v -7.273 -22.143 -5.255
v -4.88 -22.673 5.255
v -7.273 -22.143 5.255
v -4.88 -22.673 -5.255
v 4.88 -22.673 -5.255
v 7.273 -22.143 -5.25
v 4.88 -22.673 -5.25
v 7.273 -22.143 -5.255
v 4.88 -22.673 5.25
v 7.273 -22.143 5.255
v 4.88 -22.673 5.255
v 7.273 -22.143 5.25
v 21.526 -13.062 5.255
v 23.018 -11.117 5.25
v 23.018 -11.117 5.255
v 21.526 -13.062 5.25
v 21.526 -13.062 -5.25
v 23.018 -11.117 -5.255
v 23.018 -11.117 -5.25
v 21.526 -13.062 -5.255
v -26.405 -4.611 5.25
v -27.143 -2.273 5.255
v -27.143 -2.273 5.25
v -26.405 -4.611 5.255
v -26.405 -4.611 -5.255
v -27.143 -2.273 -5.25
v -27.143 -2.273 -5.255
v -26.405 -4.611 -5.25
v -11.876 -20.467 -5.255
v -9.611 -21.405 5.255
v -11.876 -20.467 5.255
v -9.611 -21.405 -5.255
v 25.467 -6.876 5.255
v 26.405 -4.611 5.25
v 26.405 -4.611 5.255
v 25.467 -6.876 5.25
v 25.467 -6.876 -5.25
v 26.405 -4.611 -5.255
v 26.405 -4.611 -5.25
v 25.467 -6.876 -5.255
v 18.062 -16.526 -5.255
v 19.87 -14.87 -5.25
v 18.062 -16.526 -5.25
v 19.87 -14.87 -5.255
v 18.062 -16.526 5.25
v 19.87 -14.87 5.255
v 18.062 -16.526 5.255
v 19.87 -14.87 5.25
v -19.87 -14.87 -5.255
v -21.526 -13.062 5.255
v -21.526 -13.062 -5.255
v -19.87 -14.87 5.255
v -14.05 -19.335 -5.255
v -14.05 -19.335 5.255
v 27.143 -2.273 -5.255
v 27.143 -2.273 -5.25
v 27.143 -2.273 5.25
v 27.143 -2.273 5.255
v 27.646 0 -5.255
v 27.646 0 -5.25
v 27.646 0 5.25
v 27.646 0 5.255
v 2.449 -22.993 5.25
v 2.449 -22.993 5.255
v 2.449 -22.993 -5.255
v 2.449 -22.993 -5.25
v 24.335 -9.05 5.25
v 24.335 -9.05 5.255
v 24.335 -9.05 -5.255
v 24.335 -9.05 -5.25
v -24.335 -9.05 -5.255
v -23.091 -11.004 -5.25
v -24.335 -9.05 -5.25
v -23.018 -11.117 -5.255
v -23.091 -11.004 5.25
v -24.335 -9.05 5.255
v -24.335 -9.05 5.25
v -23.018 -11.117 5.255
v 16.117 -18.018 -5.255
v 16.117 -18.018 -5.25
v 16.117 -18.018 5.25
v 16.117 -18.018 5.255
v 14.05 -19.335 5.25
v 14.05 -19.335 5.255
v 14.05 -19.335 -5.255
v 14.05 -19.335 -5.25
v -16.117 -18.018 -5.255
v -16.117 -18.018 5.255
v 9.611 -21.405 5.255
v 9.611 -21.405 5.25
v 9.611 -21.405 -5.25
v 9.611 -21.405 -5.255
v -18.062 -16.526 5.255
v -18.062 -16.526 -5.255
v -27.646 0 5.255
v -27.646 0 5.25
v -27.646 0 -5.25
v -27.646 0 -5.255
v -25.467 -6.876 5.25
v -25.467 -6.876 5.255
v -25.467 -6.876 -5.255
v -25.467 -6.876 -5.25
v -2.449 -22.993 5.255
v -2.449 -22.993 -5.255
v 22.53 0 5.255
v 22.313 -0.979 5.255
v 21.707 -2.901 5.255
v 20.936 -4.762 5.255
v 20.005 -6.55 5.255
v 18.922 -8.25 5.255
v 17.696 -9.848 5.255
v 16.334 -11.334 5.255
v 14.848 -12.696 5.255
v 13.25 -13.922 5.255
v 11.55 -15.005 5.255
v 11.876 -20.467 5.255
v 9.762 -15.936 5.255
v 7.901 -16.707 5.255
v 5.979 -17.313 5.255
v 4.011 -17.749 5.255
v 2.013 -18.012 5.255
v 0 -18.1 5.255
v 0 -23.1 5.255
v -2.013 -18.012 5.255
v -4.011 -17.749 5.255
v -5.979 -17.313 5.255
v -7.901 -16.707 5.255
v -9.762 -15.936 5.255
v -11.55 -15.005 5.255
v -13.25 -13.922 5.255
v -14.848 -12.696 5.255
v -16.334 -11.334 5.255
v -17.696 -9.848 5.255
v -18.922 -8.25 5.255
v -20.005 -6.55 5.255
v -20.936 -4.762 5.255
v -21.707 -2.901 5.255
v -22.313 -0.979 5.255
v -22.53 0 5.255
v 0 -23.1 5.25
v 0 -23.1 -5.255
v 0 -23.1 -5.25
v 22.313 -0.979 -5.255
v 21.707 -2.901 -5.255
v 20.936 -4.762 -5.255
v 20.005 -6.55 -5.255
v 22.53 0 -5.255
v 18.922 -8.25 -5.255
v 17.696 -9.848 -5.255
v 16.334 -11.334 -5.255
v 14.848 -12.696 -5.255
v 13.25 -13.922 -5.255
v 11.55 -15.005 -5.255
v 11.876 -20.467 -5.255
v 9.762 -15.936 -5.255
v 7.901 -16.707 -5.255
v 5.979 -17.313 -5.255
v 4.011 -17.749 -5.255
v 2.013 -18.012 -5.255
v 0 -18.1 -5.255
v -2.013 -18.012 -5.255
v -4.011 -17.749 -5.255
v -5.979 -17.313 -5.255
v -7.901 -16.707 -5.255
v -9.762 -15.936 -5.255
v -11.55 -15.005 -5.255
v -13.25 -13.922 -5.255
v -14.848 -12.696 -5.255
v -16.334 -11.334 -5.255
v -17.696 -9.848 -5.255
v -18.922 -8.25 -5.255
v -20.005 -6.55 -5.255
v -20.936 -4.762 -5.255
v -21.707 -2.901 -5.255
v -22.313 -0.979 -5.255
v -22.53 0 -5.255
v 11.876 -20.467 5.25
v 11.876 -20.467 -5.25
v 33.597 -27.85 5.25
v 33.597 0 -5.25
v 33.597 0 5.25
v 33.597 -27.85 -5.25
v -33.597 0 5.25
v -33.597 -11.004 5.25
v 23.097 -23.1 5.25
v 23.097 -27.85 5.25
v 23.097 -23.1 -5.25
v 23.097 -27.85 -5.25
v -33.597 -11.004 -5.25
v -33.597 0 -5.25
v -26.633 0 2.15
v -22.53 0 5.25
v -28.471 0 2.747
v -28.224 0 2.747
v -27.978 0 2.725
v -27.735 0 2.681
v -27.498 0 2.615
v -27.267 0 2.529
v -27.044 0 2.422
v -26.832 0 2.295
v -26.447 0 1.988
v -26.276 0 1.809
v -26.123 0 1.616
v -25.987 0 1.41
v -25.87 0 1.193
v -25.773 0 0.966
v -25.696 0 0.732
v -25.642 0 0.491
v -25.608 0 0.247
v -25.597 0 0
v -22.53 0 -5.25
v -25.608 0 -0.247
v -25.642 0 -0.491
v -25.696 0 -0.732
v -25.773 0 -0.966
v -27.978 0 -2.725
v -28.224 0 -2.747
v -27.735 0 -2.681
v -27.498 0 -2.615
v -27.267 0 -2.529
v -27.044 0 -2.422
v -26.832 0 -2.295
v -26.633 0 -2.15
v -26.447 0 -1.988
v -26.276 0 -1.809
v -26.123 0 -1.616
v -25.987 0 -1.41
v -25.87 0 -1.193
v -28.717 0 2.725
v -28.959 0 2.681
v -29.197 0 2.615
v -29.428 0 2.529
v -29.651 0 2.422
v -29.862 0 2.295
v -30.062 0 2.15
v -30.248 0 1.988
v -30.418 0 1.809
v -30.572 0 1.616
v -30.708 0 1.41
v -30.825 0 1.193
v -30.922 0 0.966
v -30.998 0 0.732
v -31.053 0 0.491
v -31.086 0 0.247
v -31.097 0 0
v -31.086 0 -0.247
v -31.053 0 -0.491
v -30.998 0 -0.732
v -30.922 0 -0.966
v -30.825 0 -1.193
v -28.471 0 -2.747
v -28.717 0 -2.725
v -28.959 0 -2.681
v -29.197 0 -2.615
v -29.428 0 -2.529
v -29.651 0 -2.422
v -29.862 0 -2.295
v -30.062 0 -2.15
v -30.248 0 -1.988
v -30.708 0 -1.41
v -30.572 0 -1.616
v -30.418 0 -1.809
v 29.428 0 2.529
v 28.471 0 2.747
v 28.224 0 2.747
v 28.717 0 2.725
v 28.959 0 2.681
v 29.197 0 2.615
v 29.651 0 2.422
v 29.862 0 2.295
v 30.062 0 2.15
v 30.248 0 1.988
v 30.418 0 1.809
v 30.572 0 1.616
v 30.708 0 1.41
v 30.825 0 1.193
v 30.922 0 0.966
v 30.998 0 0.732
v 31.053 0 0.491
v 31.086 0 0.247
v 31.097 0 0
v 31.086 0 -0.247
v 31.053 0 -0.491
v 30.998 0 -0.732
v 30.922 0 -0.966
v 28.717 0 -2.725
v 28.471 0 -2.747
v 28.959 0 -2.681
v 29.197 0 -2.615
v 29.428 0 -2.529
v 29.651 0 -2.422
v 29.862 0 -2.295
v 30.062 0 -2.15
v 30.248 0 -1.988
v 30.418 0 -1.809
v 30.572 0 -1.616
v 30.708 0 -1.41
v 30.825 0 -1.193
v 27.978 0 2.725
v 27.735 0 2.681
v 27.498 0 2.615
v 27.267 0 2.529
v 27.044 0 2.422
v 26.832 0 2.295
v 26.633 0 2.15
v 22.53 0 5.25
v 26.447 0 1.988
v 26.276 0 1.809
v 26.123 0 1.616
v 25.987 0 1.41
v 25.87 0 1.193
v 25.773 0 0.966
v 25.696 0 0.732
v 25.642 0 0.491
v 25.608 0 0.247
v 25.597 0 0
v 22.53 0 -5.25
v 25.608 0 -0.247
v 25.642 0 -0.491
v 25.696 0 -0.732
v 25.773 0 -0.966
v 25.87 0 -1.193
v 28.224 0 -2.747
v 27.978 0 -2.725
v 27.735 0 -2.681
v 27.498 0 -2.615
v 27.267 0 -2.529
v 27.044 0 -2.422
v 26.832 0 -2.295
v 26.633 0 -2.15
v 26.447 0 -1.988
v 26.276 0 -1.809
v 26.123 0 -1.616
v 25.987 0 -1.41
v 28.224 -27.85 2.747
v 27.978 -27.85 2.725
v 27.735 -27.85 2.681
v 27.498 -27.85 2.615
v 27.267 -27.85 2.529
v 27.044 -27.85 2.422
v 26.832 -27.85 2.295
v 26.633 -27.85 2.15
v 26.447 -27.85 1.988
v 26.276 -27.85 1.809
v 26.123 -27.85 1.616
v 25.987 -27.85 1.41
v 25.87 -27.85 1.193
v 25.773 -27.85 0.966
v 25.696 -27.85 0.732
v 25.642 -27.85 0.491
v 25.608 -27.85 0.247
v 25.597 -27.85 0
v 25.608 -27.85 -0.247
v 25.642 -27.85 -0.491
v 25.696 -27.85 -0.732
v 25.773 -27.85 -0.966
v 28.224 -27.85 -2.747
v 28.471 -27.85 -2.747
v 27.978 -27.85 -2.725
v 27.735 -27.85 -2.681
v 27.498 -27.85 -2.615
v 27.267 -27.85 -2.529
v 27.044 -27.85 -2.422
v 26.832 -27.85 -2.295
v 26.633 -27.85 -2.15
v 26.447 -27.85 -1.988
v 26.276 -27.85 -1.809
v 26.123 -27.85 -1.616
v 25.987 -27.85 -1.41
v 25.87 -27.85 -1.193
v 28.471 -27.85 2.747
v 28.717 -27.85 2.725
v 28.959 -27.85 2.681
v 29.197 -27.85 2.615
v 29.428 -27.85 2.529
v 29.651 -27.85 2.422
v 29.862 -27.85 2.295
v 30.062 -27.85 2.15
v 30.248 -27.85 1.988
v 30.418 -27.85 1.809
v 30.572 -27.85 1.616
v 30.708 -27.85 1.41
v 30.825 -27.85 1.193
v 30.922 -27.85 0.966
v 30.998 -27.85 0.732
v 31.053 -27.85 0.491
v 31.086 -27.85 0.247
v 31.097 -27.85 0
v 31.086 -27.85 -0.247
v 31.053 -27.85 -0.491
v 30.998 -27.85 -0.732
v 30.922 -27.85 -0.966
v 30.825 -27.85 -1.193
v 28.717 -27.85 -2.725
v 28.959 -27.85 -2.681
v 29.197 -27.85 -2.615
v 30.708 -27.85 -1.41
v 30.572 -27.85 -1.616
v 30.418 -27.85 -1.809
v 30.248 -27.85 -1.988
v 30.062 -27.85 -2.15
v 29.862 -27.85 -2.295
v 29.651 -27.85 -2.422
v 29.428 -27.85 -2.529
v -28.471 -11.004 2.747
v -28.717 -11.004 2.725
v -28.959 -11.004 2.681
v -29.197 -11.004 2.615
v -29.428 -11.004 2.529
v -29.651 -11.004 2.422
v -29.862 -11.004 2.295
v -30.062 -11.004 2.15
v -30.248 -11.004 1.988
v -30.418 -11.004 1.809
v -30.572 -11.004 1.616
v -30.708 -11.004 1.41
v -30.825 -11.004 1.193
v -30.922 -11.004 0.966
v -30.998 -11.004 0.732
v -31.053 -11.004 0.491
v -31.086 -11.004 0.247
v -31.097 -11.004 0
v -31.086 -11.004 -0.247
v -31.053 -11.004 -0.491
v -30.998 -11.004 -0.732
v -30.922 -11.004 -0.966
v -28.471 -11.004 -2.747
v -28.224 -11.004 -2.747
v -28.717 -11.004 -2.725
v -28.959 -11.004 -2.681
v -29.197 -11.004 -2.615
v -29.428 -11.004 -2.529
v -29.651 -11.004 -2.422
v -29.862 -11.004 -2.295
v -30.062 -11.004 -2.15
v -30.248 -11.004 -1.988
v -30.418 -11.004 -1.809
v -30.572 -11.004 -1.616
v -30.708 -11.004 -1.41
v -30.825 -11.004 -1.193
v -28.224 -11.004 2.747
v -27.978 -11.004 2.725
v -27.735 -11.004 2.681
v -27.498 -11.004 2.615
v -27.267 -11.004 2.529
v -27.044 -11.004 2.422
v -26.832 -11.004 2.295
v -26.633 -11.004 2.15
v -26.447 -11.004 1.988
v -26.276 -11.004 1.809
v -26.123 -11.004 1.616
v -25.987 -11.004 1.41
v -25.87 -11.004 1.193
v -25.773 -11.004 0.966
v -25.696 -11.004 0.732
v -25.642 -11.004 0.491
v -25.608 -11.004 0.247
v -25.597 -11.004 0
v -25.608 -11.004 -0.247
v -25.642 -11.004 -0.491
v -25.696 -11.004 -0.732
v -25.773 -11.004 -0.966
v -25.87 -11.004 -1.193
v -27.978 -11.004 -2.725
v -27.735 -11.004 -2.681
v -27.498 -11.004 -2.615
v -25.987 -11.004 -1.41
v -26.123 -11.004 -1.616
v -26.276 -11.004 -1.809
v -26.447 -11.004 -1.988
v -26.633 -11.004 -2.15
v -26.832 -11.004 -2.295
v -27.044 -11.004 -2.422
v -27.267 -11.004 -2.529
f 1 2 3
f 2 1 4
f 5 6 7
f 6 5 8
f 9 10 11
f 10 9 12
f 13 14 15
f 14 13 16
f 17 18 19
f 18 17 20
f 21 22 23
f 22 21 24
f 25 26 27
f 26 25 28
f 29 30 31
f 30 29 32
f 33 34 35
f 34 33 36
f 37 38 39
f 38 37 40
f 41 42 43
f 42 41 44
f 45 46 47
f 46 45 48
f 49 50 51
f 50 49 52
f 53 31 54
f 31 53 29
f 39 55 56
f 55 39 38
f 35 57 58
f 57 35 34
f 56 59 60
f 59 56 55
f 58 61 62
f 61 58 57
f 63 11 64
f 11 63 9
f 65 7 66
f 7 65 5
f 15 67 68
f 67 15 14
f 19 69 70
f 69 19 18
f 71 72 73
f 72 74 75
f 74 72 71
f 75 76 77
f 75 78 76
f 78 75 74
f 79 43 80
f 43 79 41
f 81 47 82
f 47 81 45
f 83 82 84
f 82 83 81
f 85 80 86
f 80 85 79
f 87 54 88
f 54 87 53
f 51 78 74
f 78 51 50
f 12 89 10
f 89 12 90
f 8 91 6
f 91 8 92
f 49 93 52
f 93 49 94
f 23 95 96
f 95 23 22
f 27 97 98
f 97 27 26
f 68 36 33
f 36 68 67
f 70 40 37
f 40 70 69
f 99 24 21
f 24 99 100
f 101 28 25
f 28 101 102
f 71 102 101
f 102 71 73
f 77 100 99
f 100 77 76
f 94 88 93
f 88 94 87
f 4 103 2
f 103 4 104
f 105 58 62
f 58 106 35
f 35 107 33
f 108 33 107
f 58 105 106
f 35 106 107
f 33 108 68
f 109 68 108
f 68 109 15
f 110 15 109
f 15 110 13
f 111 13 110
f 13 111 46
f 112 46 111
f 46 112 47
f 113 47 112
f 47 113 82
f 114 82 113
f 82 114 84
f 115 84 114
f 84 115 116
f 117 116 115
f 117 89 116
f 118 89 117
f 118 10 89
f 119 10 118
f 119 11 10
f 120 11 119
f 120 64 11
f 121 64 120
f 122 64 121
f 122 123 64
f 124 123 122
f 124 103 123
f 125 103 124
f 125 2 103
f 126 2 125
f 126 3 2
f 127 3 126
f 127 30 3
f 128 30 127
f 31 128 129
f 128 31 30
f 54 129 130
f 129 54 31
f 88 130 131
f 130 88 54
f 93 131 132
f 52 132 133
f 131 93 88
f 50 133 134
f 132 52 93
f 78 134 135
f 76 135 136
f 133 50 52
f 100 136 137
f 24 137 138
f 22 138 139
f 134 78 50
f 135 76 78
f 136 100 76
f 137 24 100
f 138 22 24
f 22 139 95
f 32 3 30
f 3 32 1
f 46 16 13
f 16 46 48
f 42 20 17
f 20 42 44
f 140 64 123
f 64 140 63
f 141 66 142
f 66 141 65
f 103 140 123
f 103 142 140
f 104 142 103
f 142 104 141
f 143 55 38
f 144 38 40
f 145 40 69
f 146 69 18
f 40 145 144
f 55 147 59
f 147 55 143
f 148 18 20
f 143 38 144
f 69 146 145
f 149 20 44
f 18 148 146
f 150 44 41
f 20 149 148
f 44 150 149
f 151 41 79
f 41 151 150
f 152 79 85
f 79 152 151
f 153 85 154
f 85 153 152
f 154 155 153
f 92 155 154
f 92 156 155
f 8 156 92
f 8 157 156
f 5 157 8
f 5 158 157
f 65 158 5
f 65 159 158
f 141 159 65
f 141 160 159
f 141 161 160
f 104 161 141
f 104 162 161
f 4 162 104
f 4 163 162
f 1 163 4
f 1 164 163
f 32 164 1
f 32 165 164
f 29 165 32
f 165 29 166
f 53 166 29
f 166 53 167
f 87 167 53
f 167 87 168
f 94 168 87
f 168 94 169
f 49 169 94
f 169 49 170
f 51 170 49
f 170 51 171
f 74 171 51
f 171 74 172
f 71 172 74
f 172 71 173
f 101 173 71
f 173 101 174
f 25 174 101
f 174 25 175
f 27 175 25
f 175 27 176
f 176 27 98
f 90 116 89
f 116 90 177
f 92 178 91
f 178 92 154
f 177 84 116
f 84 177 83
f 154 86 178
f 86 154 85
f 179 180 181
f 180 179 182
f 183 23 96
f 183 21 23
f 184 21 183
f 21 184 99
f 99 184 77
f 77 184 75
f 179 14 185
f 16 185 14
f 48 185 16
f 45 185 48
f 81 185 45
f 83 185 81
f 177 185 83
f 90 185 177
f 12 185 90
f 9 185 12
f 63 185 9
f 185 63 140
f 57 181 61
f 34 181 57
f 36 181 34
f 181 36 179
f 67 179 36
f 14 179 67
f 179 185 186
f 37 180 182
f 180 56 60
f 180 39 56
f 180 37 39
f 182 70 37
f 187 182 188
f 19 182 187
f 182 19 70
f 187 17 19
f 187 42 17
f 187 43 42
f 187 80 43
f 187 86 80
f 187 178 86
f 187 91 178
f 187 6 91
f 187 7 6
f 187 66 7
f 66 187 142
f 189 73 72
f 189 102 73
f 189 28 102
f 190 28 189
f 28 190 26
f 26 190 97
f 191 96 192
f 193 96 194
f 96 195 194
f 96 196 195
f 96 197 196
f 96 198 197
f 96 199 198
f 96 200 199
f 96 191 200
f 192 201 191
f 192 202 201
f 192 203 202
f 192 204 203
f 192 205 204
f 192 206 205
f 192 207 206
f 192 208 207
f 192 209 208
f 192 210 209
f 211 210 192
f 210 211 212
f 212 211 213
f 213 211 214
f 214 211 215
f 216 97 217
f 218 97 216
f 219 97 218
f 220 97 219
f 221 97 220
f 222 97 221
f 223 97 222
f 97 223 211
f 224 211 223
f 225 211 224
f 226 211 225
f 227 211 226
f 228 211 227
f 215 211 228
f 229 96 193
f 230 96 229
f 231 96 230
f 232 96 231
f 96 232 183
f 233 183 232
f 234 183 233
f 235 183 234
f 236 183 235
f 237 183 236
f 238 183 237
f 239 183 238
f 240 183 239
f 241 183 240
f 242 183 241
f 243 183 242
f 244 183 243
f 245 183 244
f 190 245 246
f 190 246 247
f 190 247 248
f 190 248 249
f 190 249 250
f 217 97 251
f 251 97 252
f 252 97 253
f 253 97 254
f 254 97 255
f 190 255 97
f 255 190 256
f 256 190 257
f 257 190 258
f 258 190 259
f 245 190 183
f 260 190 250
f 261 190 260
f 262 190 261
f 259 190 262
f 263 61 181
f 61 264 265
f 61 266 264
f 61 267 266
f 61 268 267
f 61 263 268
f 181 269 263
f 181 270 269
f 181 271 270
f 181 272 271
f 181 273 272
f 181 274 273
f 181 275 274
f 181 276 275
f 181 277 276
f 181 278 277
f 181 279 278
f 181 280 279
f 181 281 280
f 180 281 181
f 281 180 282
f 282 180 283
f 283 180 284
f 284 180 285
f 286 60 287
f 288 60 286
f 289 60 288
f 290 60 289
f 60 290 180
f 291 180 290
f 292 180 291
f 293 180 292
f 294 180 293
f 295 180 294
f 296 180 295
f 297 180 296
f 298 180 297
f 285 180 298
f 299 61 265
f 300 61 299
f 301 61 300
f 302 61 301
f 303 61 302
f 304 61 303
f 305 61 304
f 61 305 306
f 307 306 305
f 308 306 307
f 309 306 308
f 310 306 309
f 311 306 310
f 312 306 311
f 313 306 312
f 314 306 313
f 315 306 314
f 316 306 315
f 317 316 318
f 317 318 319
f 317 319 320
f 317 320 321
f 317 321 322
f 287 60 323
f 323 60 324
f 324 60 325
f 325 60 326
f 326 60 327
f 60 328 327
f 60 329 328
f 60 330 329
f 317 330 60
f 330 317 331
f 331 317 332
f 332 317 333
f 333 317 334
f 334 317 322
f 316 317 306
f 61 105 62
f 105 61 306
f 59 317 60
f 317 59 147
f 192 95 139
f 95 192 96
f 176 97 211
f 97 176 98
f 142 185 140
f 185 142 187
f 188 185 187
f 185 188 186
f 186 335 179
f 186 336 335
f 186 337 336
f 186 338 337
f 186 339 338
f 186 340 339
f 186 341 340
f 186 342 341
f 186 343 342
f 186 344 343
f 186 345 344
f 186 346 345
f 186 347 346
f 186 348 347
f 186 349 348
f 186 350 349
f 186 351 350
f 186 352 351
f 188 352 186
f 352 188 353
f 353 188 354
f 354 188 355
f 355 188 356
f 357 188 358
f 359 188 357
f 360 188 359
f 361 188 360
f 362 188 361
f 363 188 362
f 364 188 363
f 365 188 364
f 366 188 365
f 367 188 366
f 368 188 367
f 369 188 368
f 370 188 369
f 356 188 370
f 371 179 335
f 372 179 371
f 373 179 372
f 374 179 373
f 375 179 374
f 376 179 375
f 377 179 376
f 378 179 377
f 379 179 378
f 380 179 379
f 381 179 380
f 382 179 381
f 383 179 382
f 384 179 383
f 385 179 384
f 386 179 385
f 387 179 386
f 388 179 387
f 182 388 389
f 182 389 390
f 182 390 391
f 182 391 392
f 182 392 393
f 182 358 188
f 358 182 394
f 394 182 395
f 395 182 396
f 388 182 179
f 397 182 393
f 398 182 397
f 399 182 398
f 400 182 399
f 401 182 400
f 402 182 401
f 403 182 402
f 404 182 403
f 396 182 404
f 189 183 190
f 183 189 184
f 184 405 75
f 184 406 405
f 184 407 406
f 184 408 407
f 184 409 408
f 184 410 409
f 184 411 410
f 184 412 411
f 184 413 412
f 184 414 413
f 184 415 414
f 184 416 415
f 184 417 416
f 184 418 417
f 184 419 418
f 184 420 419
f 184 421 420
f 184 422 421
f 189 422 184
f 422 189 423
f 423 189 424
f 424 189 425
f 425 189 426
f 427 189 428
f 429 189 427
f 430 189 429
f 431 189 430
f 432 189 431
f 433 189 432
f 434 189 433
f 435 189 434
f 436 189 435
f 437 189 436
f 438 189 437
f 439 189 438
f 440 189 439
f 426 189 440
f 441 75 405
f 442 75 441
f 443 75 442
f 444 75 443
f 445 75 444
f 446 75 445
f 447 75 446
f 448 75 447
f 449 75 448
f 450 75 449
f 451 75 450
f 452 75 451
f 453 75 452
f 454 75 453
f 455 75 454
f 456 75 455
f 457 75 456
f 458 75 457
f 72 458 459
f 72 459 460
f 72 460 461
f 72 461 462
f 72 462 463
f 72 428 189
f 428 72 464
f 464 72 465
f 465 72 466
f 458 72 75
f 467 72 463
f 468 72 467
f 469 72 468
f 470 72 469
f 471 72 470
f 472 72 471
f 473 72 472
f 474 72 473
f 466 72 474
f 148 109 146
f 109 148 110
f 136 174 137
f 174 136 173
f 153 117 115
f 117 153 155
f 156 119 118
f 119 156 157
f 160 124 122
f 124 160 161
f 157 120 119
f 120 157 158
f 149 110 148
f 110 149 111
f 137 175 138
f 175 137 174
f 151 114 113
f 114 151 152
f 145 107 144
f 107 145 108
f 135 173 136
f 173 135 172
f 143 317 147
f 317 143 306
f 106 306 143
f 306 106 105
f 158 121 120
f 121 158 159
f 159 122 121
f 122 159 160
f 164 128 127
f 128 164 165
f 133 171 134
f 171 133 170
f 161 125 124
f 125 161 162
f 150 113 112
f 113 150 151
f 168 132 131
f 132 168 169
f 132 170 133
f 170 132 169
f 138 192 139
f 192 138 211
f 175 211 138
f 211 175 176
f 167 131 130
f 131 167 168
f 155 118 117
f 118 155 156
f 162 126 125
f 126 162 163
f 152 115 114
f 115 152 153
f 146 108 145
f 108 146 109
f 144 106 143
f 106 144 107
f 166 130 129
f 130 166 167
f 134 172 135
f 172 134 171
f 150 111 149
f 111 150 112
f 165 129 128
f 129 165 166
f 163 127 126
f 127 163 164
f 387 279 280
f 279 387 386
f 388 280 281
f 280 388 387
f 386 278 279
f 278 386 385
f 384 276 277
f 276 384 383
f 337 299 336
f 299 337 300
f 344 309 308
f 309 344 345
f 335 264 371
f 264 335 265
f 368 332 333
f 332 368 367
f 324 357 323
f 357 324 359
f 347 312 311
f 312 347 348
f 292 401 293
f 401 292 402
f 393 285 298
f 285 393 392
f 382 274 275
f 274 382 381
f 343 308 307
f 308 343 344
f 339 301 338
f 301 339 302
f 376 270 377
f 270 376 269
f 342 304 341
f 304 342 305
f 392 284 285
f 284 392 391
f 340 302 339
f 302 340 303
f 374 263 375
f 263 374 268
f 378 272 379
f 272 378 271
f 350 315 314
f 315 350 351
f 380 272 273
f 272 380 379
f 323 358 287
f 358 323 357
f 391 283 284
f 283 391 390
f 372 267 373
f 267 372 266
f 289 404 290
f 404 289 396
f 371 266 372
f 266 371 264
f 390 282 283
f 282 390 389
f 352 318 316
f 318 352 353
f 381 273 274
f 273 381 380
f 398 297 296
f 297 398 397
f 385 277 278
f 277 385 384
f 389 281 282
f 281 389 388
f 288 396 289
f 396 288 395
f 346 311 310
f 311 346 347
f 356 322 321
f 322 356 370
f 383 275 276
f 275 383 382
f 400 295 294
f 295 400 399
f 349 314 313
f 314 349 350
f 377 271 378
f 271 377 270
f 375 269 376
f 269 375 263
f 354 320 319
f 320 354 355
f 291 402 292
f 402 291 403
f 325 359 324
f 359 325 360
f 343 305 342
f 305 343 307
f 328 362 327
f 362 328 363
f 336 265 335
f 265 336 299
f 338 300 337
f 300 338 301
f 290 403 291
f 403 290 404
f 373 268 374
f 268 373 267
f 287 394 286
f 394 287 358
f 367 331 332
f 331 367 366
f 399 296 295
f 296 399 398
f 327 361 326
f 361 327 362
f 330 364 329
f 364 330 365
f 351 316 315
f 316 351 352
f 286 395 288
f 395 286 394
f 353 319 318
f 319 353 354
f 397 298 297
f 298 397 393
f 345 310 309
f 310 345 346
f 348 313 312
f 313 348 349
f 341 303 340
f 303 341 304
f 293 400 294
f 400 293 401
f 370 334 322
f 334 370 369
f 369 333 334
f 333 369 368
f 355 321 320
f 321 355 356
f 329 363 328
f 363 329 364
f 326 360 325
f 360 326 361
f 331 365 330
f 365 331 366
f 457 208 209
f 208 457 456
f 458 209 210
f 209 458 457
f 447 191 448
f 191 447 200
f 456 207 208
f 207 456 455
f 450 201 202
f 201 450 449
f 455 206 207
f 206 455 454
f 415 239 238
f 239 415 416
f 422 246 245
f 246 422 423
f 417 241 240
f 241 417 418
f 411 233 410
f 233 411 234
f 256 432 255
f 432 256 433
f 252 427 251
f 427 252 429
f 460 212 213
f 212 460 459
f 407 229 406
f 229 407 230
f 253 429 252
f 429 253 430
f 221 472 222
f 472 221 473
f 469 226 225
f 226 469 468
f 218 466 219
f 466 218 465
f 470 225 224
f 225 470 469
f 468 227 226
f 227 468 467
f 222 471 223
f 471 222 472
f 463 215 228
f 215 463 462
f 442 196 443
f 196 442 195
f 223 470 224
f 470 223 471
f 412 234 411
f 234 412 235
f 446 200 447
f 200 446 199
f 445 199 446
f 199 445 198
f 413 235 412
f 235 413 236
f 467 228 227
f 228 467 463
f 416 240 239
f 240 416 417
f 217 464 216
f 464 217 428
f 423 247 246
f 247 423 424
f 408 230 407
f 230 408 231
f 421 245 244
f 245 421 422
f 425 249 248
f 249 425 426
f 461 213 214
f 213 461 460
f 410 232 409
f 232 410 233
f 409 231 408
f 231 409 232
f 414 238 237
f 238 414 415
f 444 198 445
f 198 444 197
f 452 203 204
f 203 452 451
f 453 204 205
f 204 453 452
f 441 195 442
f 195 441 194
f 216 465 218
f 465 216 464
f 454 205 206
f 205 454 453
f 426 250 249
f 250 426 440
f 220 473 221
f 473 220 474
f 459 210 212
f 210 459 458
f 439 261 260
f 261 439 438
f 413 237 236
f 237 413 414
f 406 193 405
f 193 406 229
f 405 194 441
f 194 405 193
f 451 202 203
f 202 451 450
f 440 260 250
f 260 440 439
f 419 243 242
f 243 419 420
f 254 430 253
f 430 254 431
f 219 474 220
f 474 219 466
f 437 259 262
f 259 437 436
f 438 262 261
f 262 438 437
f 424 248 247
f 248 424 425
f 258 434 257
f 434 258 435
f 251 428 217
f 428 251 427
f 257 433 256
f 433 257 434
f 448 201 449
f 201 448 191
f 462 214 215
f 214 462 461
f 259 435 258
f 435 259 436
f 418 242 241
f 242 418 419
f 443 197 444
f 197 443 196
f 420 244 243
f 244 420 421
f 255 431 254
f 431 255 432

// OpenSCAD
// "Resolution" of arcs
$fs=0.25;
$fa=5;

module splitterMountingBracket(
    poleDiameter = 46,
    poleFittingOffset = 5,
    polePadding = 5,
    mountScrewHoleDiameter = 5.5,
    mountScrewHolePadding = 2.5,
    minHoleBlockDepth = 5,
    screwHoleOffset = 1.5,
    extend = (28-18.5)/2,
) {
    innerRadius = poleDiameter/2;
    outerRadius = innerRadius + polePadding;
    outerDiameter = outerRadius*2;
    
    innerArcPositionX = innerRadius - sqrt(innerRadius^2 - poleFittingOffset^2);
    outerArcPositionY = sqrt(outerRadius^2 - (sqrt(innerRadius^2 - poleFittingOffset^2) + screwHoleOffset)^2);

    holeBlockDepth = max(minHoleBlockDepth, outerArcPositionY - poleFittingOffset);
    
    difference() {
        union() {
            // Hole Block
            translate([
                0,
                -holeBlockDepth/2,
                0
            ])
                cube([
                    poleDiameter + mountScrewHoleDiameter*2 + mountScrewHolePadding*4 - innerArcPositionX*2 + screwHoleOffset*2, 
                    holeBlockDepth, 
                    mountScrewHoleDiameter + mountScrewHolePadding*2
                ], center=true);
            
            // Main Body
            difference() {
                union() {
                    translate([
                        0, 
                        poleFittingOffset,
                        0
                    ])
                        cylinder(
                            h=mountScrewHoleDiameter + mountScrewHolePadding*2 + 0.01, 
                            r=outerRadius, 
                            center=true
                        );
                    translate([(innerRadius+mountScrewHoleDiameter+mountScrewHolePadding*2+screwHoleOffset-innerArcPositionX)/2, -(innerRadius+polePadding-poleFittingOffset)/2, 0])
                        cube([
                            innerRadius+mountScrewHoleDiameter+mountScrewHolePadding*2+screwHoleOffset-innerArcPositionX, 
                            innerRadius+polePadding-poleFittingOffset, 
                            mountScrewHoleDiameter + mountScrewHolePadding*2
                    ], center=true);
                    color("red")
                    translate([screwHolePosition, -(innerRadius+polePadding-poleFittingOffset)+(mountScrewHoleDiameter + mountScrewHolePadding*2)/2-extend, 0])
                        cube(mountScrewHoleDiameter + mountScrewHolePadding*2, center=true);
                }
                translate([0, (innerRadius+poleFittingOffset*2+polePadding)/2, 0])
                    cube([
                        outerDiameter, 
                        innerRadius+poleFittingOffset*2+polePadding, 
                        mountScrewHoleDiameter + mountScrewHolePadding*2+0.1
                    ], center=true);
            }
        }
        // Inner Cutout
        translate([0, poleFittingOffset, 0])
            cylinder(h=mountScrewHoleDiameter + mountScrewHolePadding*2 + 0.1, r=innerRadius, center=true);
        
        screwHolePosition = innerRadius + mountScrewHoleDiameter/2 + mountScrewHolePadding - innerArcPositionX + screwHoleOffset;
        // screw Hole L
        translate([screwHolePosition, -holeBlockDepth/2, 0])
            rotate([90, 0, 0])
                cylinder(h=poleDiameter + 0.01, r=mountScrewHoleDiameter/2, center=true);
        // screw Hole R
        translate([-screwHolePosition, -holeBlockDepth/2, 0])
            rotate([90, 0, 0])
                cylinder(h=poleDiameter + 0.01, r=mountScrewHoleDiameter/2, center=true);
        
    }
}

splitterMountingBracket(46.2, screwHoleOffset=0.545);
